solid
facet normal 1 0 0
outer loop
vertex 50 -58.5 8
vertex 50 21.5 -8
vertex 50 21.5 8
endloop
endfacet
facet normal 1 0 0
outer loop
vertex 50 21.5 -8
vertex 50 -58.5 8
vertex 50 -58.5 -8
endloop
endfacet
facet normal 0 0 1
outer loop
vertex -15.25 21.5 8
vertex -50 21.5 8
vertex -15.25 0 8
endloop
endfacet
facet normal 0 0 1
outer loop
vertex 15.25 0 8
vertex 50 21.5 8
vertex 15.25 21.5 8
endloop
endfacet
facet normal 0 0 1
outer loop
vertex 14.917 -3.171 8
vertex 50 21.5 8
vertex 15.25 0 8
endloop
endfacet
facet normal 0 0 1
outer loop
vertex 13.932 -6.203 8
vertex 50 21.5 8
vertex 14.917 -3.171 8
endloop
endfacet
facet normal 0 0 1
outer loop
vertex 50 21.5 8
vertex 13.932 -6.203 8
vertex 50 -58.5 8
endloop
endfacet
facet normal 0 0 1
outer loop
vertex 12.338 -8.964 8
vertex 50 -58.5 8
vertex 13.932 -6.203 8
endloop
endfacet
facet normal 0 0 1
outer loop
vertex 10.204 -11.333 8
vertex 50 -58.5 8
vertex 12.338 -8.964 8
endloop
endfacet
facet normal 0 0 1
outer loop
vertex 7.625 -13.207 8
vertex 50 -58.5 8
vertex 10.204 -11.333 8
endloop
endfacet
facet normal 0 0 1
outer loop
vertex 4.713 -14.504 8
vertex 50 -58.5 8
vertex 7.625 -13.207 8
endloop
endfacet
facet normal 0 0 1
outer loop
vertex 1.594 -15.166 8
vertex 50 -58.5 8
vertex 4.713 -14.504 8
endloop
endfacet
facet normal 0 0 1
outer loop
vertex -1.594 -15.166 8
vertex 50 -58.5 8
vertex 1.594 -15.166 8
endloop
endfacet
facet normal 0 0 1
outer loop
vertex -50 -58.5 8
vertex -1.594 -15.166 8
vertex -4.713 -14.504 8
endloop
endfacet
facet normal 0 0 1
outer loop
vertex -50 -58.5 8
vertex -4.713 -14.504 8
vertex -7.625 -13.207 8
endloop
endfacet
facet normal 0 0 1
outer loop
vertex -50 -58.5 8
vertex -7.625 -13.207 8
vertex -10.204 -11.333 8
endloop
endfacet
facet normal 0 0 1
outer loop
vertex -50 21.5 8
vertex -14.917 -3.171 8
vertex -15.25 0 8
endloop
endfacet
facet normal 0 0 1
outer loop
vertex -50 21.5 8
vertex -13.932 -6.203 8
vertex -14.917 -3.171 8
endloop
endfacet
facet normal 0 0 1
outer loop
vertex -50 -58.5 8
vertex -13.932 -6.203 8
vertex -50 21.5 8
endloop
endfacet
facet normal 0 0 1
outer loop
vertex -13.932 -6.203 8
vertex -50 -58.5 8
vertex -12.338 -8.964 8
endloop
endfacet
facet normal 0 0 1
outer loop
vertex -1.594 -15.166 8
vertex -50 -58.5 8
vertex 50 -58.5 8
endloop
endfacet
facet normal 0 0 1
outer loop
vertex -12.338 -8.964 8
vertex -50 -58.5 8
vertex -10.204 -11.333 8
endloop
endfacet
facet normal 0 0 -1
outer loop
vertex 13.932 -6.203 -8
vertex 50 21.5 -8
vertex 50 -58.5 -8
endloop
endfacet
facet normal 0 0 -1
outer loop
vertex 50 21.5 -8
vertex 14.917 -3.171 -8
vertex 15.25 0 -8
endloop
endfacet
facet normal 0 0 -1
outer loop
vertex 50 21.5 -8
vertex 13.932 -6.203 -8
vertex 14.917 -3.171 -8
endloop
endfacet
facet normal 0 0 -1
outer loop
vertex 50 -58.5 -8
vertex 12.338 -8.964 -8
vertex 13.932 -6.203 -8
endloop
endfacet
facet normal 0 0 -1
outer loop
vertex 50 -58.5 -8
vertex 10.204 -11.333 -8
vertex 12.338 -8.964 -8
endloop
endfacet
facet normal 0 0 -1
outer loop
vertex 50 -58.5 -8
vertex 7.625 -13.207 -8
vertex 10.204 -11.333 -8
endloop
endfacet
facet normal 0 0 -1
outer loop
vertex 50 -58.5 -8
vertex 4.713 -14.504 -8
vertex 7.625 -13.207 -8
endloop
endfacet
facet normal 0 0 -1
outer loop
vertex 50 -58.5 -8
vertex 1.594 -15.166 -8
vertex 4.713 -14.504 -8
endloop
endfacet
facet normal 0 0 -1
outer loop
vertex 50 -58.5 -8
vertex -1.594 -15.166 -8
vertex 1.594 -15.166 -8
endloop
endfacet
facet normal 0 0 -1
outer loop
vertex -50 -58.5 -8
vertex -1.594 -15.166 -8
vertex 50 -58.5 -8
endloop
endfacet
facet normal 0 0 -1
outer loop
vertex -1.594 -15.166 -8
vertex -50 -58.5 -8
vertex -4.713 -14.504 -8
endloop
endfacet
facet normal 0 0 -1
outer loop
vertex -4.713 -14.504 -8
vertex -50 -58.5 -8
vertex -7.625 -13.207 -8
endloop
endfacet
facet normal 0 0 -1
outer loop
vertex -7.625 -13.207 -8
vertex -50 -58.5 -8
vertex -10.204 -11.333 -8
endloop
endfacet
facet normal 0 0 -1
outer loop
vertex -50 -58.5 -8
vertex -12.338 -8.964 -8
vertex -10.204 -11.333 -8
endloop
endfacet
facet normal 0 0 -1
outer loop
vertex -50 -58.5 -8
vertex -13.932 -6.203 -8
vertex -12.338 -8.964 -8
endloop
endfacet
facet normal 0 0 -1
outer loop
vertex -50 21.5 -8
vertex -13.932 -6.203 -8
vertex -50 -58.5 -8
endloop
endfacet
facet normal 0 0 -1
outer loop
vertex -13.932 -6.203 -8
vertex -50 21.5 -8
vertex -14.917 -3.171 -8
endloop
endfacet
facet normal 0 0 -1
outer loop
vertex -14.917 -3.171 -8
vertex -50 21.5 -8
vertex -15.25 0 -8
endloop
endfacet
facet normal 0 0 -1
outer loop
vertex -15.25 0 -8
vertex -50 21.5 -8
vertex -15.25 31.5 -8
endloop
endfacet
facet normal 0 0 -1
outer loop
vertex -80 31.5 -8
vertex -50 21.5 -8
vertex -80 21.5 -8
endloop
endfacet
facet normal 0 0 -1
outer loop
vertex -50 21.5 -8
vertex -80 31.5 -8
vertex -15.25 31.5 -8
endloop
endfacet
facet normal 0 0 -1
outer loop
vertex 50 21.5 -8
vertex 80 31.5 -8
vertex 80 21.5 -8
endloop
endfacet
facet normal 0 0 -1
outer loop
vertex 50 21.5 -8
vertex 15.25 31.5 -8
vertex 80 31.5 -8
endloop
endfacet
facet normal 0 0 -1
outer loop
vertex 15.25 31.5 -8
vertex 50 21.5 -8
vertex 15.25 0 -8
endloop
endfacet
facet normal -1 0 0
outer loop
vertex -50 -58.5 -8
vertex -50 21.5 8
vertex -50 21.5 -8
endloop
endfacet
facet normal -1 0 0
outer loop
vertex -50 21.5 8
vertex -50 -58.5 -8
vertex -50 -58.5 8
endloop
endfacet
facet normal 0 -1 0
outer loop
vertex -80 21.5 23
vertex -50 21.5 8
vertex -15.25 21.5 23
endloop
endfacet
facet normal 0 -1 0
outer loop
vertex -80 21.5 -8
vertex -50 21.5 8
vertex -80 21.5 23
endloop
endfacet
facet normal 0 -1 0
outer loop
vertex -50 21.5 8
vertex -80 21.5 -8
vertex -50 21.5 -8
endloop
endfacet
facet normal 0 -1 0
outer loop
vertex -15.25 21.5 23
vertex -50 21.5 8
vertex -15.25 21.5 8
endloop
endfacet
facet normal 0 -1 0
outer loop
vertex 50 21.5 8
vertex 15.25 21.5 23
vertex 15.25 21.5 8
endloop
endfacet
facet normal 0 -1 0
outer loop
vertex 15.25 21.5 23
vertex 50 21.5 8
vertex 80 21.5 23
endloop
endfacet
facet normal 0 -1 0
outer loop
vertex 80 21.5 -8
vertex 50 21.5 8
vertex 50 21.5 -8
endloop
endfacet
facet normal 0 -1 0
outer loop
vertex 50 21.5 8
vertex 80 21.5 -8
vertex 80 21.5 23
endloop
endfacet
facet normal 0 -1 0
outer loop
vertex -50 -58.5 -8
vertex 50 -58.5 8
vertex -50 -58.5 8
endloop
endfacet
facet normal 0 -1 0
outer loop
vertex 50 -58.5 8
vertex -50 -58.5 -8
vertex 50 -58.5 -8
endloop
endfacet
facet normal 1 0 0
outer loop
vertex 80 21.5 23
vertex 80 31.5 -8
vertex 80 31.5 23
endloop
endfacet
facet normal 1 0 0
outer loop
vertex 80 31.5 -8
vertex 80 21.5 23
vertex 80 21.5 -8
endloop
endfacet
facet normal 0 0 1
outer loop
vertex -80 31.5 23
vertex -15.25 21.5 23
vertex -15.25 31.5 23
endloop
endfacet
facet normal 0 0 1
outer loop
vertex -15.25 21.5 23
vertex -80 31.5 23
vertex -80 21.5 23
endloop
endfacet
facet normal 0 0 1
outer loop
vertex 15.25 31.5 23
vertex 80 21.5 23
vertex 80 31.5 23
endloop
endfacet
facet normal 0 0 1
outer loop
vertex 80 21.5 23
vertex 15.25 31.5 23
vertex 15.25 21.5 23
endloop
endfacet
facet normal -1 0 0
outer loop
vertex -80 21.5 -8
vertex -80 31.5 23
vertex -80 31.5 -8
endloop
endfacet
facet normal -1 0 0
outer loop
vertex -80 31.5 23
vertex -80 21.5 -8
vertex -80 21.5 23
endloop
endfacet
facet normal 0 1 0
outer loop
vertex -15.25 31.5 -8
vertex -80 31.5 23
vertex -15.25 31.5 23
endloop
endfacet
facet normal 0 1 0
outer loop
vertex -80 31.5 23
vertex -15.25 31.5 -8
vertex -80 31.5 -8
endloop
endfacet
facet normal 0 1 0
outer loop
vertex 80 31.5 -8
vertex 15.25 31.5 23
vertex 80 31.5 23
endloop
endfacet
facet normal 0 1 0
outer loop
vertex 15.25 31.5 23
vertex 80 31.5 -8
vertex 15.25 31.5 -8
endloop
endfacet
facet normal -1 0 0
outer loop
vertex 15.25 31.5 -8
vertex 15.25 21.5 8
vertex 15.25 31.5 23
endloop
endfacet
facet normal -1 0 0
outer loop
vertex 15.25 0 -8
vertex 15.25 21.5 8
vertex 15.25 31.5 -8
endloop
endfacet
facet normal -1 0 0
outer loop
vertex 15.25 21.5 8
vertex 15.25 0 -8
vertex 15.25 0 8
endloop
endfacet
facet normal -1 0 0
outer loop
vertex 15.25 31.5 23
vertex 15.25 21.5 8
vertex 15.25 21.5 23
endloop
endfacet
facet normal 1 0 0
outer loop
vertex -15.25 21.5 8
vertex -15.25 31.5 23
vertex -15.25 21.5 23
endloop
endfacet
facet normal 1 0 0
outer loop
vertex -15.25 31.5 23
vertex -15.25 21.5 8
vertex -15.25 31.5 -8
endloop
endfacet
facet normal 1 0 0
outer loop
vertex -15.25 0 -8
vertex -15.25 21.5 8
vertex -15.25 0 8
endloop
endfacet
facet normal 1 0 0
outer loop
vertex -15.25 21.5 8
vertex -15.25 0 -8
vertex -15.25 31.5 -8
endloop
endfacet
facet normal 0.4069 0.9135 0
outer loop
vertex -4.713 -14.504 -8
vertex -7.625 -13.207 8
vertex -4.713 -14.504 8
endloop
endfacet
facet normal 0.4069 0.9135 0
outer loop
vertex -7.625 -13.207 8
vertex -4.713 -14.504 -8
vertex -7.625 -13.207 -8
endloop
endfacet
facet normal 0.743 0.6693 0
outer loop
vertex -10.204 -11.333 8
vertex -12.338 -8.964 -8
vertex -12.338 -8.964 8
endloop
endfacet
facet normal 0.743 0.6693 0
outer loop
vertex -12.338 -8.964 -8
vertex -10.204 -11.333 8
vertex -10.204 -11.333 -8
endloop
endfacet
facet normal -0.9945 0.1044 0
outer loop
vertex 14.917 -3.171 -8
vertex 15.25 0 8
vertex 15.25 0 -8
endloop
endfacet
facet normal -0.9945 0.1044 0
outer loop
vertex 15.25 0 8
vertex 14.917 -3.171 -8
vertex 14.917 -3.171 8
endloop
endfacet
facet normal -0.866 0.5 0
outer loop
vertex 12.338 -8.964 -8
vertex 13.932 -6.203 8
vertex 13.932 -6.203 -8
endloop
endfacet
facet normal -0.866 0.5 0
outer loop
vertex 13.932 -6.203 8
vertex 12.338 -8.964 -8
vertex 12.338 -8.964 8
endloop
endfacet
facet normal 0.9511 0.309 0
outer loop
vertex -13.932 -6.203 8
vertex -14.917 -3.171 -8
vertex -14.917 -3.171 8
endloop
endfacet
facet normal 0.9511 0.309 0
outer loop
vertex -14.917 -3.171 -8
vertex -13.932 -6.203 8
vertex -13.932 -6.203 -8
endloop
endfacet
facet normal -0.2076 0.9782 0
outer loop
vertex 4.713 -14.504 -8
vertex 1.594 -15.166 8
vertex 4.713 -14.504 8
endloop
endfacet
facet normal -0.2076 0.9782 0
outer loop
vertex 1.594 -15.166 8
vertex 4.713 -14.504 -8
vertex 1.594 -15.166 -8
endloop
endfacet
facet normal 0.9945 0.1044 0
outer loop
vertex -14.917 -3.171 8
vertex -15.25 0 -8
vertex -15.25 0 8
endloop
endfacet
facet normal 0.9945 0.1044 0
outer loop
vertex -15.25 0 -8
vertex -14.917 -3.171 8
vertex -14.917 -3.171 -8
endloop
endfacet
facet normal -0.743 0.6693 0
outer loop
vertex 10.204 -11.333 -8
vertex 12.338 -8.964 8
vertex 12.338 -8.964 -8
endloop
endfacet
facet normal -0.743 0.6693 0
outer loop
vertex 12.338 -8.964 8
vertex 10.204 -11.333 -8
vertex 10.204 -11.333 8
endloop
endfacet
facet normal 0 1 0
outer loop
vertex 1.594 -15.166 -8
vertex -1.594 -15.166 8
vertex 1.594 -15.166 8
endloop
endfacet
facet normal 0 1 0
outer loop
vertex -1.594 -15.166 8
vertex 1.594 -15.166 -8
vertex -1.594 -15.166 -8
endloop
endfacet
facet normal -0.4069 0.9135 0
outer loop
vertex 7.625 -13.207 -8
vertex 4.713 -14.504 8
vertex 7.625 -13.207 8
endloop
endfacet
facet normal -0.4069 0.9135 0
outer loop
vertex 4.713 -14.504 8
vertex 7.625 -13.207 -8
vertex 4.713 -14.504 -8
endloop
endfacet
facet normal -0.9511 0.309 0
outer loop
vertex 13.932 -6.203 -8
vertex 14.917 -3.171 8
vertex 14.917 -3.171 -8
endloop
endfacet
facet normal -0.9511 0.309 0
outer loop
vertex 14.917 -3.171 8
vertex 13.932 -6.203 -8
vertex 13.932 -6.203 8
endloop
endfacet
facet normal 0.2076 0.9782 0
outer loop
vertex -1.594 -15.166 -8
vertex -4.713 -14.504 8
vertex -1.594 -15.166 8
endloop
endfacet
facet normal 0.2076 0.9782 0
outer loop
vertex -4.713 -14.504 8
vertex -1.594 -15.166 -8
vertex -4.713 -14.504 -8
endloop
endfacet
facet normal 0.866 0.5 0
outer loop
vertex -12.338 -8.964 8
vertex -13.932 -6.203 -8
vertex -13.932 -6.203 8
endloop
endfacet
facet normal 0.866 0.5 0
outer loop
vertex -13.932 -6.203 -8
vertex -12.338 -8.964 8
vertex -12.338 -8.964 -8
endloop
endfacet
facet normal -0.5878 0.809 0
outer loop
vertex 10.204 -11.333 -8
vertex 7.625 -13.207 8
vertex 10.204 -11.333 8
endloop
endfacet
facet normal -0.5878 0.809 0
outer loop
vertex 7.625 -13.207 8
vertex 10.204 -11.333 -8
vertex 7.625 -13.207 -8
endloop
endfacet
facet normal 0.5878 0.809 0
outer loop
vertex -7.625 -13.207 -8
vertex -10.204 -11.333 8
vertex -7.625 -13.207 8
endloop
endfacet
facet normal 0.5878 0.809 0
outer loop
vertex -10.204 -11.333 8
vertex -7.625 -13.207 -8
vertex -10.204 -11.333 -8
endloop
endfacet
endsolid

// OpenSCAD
// Hight of router is 14
height = 16;  // 2 depth 
removalHeight = height+31;
cylinderRadius = 15.25;
rectangerlWith = 
    cylinderRadius*2;
rectangerlLenght = 17+4.5;
tamplateWith = 100;
tamplateLenght = 80;
bracketsExtraHight = 15;
bracketsExtraWith = 30;
bracketsThicknes = 10;

/*
difference()  {cube(12, center=true); sphere(8);} //
*/

difference() {
union(){    
translate([
    -tamplateWith/2,
    -tamplateLenght+
    rectangerlLenght,
    -height/2]) 
    cube(size = [
    tamplateWith,
    tamplateLenght,
    height]);

translate([
    -tamplateWith/2
    -bracketsExtraWith,
    +rectangerlLenght,
    -height/2]) 
    cube(size = [
    tamplateWith
    +bracketsExtraWith*2,
    bracketsThicknes,
    height
    +bracketsExtraHight]);
}
union(){
translate([
    -rectangerlWith/2,
    0,
    -removalHeight/2]) 
    cube(size = [
    rectangerlWith,
    rectangerlLenght+16,
    removalHeight]);
    
cylinder(
    h = removalHeight, 
    r = cylinderRadius,
    center = true);
}
}
